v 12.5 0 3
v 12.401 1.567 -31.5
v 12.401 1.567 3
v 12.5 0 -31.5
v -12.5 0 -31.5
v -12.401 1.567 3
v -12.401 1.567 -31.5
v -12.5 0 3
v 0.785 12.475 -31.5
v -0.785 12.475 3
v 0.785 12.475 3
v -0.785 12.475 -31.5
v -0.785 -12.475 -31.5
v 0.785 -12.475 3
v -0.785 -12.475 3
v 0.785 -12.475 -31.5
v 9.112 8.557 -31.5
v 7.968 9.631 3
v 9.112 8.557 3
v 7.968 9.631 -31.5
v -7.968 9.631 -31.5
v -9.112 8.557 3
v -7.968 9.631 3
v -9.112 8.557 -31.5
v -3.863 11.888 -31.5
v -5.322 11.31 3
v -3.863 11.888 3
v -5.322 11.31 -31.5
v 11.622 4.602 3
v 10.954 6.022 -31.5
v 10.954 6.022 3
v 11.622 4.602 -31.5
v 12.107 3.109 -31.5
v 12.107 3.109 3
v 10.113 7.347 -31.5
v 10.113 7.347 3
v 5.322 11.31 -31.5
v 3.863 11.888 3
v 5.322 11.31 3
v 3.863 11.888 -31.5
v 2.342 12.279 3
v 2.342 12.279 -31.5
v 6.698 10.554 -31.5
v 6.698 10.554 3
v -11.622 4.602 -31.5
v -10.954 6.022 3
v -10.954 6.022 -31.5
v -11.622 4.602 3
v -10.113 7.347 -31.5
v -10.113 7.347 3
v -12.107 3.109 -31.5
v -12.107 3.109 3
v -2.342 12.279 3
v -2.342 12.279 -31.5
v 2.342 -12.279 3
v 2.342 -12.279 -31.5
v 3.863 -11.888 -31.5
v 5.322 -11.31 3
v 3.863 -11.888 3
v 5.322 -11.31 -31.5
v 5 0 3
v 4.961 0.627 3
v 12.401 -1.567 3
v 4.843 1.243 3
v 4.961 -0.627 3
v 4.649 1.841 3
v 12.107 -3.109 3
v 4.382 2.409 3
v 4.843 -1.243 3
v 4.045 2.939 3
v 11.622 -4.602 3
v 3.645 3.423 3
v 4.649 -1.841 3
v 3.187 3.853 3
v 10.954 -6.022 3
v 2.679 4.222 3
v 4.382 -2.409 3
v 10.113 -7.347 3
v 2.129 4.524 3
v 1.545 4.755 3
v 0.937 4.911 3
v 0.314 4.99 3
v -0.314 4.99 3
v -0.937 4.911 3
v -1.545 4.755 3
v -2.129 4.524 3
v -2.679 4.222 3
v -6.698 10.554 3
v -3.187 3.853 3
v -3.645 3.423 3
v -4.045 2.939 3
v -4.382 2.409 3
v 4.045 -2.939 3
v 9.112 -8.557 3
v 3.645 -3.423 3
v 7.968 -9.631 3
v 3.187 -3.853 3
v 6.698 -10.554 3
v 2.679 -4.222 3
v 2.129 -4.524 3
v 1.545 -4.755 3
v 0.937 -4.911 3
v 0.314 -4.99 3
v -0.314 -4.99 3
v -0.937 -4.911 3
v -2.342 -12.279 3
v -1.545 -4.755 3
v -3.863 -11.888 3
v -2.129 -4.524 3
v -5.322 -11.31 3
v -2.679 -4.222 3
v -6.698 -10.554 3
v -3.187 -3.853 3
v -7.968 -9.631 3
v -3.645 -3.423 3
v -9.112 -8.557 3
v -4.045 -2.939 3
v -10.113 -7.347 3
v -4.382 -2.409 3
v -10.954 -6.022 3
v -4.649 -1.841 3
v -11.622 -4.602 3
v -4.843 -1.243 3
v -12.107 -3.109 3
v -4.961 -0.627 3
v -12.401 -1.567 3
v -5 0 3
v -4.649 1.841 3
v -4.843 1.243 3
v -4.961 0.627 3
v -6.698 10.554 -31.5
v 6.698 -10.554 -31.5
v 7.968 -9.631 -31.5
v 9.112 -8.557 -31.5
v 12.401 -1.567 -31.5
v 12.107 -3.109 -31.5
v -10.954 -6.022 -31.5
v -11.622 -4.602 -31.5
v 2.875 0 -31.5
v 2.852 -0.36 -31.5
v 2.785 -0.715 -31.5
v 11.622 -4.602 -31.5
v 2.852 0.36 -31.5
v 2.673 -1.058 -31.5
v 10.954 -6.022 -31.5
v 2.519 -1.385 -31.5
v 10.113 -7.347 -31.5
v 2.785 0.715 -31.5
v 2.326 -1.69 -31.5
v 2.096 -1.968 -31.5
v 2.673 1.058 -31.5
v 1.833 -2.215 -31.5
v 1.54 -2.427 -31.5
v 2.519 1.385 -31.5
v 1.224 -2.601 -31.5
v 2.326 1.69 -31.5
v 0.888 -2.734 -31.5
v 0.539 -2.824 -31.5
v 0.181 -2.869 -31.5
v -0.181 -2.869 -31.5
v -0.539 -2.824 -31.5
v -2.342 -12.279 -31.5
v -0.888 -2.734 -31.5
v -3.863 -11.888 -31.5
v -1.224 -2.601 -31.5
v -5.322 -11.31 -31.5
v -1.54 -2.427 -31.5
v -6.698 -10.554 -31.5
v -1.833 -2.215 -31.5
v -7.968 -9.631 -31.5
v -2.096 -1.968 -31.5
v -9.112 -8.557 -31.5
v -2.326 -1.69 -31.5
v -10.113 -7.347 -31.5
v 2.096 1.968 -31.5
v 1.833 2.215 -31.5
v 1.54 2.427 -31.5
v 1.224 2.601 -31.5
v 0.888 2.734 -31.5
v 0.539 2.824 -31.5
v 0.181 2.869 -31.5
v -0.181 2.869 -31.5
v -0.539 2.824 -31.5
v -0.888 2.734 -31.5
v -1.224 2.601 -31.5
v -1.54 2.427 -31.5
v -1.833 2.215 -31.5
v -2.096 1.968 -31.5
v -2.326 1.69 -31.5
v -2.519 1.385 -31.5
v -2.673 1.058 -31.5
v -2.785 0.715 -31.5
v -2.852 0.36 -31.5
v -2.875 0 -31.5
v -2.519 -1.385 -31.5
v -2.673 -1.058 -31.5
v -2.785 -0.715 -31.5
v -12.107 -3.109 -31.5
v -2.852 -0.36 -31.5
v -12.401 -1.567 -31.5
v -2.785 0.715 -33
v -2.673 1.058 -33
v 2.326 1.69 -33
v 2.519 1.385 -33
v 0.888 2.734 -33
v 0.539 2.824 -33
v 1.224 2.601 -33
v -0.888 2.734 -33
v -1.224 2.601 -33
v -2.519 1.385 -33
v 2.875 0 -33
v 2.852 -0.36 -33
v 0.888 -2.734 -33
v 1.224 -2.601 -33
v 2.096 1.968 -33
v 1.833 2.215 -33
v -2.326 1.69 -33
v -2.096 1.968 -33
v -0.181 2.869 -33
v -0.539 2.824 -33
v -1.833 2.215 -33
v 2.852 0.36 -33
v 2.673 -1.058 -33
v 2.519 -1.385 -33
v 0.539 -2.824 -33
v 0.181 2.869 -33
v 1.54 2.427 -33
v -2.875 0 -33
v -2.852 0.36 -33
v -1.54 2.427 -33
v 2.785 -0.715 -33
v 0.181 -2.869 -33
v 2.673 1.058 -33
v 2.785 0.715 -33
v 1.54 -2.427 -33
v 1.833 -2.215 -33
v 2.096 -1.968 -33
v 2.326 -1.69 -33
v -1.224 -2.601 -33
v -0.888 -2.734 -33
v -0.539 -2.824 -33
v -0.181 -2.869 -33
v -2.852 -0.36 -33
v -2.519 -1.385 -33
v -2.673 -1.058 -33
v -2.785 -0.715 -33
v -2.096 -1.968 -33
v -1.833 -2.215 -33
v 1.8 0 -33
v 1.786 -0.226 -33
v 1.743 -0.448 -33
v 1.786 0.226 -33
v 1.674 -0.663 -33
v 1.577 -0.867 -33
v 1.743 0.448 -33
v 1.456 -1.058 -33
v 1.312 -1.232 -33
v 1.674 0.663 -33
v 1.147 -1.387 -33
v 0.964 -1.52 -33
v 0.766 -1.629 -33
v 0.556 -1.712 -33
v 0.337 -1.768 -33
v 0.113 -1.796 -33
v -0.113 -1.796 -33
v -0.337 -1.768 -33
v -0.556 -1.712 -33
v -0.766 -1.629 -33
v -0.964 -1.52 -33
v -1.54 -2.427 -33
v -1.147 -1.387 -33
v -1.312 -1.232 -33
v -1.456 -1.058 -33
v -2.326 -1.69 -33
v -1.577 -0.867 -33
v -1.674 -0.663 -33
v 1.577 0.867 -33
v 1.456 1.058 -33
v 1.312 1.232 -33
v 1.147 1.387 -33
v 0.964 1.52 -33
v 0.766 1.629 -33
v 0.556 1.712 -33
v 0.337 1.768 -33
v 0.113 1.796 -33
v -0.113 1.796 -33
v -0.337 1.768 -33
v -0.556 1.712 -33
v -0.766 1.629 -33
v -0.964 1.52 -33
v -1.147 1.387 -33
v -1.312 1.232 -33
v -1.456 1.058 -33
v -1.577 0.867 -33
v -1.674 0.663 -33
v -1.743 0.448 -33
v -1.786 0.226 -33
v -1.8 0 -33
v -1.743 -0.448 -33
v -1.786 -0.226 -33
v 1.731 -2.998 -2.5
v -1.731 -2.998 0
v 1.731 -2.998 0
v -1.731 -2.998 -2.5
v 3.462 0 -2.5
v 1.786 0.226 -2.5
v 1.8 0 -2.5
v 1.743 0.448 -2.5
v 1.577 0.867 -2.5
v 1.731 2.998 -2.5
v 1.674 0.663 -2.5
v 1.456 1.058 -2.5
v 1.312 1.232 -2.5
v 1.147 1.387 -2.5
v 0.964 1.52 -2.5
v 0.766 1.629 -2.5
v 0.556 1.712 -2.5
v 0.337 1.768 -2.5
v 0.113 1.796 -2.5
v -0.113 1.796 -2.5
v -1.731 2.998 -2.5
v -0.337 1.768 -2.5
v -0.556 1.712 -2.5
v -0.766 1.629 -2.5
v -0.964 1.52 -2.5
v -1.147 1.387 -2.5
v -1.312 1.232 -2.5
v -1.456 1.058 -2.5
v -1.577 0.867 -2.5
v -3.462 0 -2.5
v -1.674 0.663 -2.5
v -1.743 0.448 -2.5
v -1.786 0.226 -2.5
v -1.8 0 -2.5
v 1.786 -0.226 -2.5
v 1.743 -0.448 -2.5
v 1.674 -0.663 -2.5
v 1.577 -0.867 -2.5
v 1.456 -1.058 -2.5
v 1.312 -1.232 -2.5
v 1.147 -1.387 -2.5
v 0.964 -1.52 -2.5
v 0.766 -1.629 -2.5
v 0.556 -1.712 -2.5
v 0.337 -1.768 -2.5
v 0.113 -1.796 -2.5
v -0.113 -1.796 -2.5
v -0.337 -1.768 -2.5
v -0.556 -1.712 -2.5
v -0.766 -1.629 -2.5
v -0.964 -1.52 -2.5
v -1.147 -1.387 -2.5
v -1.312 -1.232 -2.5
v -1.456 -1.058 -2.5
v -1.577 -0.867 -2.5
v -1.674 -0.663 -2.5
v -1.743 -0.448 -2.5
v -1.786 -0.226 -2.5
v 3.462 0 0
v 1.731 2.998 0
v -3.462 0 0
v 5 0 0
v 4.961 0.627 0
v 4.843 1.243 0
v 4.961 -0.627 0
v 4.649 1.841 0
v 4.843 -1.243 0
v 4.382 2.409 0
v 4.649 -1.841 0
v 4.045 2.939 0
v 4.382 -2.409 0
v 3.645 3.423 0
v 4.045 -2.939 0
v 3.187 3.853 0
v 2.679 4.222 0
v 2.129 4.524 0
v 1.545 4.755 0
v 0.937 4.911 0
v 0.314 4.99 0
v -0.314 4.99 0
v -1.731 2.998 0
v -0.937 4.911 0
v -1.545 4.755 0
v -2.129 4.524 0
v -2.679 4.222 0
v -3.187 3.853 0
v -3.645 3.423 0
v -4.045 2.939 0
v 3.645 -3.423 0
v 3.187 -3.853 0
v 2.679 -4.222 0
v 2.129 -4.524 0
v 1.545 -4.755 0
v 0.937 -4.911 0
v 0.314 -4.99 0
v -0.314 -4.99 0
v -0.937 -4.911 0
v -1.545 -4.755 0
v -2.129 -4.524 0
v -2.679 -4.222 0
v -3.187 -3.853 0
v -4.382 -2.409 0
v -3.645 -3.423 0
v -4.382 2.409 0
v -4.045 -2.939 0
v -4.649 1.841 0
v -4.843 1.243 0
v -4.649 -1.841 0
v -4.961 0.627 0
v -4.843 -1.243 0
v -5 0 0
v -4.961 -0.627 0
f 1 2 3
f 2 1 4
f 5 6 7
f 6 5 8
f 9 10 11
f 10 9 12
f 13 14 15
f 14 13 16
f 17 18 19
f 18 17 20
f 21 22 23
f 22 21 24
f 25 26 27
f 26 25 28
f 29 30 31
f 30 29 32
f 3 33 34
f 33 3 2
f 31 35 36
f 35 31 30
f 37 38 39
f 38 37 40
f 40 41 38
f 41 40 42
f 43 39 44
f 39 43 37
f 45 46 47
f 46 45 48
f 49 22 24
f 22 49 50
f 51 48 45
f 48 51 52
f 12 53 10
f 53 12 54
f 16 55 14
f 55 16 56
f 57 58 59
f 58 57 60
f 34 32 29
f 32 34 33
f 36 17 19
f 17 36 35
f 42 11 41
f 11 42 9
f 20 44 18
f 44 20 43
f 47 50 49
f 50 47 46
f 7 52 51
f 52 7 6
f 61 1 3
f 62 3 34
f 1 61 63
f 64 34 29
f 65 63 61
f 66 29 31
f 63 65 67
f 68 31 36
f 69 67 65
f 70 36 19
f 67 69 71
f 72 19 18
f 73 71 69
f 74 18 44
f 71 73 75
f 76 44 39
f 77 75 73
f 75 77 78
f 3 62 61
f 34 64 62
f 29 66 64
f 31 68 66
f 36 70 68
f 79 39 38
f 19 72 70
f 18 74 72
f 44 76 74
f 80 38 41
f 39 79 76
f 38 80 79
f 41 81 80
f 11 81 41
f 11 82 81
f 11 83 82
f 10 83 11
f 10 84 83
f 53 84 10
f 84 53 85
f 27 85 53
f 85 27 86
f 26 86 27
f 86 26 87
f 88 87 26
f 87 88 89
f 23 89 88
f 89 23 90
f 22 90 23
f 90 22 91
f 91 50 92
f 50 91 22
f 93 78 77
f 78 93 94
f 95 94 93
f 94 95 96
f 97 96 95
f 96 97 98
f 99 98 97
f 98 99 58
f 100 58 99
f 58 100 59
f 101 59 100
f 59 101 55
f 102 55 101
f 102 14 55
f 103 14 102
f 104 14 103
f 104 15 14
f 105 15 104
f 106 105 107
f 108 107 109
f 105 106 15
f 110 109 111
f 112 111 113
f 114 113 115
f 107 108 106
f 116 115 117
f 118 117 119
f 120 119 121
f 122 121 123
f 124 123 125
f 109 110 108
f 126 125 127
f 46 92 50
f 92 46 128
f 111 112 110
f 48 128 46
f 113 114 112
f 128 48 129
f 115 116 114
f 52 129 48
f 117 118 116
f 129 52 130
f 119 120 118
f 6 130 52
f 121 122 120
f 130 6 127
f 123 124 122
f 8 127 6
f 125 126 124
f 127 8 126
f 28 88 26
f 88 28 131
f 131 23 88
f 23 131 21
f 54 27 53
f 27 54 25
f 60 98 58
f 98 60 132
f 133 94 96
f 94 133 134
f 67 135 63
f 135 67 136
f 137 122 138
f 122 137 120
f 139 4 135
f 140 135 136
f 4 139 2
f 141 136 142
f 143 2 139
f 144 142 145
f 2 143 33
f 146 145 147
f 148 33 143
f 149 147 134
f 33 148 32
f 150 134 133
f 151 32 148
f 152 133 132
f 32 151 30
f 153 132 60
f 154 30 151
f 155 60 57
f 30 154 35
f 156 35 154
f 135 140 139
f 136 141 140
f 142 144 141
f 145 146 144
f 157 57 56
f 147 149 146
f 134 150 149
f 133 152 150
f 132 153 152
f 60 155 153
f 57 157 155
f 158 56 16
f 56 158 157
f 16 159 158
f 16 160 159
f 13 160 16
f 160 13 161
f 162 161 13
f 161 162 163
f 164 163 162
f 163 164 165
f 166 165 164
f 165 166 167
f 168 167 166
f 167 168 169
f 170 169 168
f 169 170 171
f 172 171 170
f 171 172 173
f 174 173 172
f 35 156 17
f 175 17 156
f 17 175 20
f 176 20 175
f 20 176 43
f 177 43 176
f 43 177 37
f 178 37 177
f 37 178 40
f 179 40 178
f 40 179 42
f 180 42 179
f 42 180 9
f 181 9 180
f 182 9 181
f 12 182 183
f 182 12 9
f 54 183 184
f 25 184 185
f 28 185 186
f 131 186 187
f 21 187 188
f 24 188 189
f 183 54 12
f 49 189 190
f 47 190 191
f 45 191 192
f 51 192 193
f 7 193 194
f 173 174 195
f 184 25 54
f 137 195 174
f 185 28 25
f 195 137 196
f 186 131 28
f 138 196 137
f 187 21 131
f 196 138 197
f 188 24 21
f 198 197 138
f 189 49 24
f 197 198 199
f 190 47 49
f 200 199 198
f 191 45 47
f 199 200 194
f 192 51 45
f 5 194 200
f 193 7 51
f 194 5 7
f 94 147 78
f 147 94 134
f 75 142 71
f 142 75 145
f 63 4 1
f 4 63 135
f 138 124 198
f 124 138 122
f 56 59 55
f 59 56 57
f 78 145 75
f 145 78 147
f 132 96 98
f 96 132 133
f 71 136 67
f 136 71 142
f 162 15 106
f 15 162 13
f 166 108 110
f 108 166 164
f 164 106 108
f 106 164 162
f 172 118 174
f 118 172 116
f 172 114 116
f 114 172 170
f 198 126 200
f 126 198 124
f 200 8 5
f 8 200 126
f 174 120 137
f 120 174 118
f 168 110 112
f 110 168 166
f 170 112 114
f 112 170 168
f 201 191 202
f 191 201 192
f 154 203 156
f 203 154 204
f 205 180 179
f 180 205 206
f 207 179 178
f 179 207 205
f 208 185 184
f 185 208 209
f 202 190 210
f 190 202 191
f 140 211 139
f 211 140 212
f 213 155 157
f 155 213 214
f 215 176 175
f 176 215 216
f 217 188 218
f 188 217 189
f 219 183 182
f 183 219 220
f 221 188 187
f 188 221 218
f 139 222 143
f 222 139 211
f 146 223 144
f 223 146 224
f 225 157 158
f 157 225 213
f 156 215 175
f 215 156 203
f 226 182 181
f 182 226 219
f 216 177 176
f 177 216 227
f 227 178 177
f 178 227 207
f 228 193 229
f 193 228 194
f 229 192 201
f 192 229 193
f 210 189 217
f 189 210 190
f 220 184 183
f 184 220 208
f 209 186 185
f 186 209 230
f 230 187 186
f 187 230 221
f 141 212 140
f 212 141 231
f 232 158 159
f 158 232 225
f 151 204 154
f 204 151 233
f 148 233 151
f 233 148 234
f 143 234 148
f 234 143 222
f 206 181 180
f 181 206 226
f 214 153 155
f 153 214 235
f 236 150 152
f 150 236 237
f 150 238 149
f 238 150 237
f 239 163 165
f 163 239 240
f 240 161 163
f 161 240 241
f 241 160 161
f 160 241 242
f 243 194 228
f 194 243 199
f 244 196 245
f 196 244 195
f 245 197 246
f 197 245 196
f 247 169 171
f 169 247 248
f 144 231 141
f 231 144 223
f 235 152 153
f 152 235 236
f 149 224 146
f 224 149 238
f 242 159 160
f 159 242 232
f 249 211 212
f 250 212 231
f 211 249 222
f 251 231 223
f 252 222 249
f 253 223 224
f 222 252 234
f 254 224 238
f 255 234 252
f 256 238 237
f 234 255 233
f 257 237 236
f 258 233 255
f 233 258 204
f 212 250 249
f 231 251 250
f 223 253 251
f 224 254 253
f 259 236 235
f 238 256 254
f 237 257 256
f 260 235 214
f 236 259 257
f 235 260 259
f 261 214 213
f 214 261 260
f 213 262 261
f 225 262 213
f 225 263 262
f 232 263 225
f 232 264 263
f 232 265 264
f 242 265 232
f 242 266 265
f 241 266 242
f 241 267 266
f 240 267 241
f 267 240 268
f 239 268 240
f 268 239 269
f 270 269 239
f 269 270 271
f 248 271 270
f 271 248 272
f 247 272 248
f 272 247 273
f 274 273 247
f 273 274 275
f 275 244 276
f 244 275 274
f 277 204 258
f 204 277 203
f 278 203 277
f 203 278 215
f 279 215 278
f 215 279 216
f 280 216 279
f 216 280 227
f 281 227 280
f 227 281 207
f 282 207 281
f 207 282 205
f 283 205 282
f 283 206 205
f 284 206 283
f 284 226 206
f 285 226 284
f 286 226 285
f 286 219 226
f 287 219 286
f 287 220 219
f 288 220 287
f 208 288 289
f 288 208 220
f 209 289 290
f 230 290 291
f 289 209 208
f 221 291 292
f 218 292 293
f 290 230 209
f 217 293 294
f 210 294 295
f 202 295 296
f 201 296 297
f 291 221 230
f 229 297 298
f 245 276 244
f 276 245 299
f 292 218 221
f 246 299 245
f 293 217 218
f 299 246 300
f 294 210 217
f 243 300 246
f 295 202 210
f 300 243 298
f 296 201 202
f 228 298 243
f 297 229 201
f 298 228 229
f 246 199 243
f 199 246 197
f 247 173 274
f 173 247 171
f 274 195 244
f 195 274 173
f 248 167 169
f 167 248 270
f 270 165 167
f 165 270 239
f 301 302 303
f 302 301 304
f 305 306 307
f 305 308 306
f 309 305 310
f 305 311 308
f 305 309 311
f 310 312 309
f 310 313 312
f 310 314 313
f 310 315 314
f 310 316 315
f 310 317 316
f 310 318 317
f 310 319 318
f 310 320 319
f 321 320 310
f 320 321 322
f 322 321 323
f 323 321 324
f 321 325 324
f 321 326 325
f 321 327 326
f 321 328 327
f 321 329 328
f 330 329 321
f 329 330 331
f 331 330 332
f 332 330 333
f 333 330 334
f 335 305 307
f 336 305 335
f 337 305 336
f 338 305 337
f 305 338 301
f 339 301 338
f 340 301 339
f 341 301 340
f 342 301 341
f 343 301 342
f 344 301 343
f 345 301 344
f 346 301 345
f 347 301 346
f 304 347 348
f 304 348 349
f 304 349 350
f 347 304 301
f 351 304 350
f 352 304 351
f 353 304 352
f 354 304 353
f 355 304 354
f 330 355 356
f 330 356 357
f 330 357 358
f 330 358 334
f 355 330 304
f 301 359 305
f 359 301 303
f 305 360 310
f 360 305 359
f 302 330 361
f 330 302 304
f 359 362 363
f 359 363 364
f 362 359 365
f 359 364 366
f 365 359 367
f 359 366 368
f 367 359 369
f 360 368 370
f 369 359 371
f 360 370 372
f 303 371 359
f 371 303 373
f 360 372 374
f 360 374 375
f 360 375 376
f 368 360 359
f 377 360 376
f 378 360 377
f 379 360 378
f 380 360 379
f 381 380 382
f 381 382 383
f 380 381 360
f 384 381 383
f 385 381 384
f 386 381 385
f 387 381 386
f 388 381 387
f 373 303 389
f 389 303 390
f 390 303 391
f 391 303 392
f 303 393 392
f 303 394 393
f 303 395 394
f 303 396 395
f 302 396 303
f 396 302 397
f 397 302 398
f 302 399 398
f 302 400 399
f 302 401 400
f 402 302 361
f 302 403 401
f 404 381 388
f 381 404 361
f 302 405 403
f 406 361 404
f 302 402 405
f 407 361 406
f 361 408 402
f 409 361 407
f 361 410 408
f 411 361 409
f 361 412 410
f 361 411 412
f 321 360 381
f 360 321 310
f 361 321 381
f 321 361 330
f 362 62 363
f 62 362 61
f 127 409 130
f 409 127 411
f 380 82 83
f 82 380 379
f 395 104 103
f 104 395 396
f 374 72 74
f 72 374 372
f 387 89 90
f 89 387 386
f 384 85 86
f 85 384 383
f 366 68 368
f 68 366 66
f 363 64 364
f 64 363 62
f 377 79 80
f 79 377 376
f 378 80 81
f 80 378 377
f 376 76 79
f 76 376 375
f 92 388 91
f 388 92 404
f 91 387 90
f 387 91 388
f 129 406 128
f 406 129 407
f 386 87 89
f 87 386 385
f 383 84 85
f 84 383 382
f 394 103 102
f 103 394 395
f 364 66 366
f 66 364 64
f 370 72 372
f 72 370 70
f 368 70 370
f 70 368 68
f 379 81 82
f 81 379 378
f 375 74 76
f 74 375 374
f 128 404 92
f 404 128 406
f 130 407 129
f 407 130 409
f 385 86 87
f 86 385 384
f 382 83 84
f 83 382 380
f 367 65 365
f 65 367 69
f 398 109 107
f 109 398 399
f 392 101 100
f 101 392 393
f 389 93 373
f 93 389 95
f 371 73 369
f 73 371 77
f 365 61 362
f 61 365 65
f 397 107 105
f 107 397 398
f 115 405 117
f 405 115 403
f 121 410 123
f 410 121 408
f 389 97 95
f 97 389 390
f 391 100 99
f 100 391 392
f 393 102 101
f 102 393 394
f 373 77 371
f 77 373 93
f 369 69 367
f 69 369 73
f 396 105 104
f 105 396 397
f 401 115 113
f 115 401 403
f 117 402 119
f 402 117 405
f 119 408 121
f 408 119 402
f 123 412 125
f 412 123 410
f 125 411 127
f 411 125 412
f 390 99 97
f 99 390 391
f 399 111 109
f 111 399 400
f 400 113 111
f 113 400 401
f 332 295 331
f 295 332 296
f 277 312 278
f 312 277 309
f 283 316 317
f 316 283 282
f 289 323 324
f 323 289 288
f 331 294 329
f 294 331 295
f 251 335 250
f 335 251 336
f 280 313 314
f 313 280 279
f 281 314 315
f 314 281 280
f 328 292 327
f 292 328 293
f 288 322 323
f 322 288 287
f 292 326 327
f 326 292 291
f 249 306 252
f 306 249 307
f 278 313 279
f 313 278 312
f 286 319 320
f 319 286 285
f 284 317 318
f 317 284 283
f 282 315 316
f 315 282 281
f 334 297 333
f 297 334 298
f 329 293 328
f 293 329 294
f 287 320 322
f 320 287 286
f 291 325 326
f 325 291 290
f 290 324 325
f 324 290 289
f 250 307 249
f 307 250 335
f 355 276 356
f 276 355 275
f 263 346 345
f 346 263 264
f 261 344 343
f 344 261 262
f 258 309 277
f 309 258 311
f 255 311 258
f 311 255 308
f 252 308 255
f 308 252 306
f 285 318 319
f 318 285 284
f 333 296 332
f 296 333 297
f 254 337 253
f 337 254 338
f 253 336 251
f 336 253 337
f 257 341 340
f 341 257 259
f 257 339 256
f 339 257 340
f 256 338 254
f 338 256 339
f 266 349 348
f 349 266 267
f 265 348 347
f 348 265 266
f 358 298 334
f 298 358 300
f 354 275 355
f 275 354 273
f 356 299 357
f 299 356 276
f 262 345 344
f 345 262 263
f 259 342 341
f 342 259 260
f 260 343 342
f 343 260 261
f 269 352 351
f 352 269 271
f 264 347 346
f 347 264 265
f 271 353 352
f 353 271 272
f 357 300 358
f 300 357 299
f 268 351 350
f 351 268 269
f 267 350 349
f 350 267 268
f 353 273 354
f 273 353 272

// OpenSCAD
$fn = 50;


difference() {
	union() {
		translate(v = [0, 0, -31.5000000000]) {
			cylinder(h = 34.5000000000, r = 12.5000000000);
		}
		#translate(v = [0, 0, -33.0000000000]) {
			cylinder(h = 33, r = 2.8750000000);
		}
	}
	union() {
		translate(v = [0, 0, 0]) {
			rotate(a = [0, 0, 0]) {
				difference() {
					union() {
						translate(v = [0, 0, -2.5000000000]) {
							linear_extrude(height = 2.5000000000) {
								polygon(points = [[3.4620000000, 0.0000000000], [1.7310000000, 2.9981799479], [-1.7310000000, 2.9981799479], [-3.4620000000, 0.0000000000], [-1.7310000000, -2.9981799479], [1.7310000000, -2.9981799479]]);
							}
						}
					}
					union();
				}
			}
		}
		#cylinder(h = 3, r = 5.0000000000);
		#translate(v = [0, 0, -100.0000000000]) {
			cylinder(h = 200, r = 1.8000000000);
		}
	}
}
